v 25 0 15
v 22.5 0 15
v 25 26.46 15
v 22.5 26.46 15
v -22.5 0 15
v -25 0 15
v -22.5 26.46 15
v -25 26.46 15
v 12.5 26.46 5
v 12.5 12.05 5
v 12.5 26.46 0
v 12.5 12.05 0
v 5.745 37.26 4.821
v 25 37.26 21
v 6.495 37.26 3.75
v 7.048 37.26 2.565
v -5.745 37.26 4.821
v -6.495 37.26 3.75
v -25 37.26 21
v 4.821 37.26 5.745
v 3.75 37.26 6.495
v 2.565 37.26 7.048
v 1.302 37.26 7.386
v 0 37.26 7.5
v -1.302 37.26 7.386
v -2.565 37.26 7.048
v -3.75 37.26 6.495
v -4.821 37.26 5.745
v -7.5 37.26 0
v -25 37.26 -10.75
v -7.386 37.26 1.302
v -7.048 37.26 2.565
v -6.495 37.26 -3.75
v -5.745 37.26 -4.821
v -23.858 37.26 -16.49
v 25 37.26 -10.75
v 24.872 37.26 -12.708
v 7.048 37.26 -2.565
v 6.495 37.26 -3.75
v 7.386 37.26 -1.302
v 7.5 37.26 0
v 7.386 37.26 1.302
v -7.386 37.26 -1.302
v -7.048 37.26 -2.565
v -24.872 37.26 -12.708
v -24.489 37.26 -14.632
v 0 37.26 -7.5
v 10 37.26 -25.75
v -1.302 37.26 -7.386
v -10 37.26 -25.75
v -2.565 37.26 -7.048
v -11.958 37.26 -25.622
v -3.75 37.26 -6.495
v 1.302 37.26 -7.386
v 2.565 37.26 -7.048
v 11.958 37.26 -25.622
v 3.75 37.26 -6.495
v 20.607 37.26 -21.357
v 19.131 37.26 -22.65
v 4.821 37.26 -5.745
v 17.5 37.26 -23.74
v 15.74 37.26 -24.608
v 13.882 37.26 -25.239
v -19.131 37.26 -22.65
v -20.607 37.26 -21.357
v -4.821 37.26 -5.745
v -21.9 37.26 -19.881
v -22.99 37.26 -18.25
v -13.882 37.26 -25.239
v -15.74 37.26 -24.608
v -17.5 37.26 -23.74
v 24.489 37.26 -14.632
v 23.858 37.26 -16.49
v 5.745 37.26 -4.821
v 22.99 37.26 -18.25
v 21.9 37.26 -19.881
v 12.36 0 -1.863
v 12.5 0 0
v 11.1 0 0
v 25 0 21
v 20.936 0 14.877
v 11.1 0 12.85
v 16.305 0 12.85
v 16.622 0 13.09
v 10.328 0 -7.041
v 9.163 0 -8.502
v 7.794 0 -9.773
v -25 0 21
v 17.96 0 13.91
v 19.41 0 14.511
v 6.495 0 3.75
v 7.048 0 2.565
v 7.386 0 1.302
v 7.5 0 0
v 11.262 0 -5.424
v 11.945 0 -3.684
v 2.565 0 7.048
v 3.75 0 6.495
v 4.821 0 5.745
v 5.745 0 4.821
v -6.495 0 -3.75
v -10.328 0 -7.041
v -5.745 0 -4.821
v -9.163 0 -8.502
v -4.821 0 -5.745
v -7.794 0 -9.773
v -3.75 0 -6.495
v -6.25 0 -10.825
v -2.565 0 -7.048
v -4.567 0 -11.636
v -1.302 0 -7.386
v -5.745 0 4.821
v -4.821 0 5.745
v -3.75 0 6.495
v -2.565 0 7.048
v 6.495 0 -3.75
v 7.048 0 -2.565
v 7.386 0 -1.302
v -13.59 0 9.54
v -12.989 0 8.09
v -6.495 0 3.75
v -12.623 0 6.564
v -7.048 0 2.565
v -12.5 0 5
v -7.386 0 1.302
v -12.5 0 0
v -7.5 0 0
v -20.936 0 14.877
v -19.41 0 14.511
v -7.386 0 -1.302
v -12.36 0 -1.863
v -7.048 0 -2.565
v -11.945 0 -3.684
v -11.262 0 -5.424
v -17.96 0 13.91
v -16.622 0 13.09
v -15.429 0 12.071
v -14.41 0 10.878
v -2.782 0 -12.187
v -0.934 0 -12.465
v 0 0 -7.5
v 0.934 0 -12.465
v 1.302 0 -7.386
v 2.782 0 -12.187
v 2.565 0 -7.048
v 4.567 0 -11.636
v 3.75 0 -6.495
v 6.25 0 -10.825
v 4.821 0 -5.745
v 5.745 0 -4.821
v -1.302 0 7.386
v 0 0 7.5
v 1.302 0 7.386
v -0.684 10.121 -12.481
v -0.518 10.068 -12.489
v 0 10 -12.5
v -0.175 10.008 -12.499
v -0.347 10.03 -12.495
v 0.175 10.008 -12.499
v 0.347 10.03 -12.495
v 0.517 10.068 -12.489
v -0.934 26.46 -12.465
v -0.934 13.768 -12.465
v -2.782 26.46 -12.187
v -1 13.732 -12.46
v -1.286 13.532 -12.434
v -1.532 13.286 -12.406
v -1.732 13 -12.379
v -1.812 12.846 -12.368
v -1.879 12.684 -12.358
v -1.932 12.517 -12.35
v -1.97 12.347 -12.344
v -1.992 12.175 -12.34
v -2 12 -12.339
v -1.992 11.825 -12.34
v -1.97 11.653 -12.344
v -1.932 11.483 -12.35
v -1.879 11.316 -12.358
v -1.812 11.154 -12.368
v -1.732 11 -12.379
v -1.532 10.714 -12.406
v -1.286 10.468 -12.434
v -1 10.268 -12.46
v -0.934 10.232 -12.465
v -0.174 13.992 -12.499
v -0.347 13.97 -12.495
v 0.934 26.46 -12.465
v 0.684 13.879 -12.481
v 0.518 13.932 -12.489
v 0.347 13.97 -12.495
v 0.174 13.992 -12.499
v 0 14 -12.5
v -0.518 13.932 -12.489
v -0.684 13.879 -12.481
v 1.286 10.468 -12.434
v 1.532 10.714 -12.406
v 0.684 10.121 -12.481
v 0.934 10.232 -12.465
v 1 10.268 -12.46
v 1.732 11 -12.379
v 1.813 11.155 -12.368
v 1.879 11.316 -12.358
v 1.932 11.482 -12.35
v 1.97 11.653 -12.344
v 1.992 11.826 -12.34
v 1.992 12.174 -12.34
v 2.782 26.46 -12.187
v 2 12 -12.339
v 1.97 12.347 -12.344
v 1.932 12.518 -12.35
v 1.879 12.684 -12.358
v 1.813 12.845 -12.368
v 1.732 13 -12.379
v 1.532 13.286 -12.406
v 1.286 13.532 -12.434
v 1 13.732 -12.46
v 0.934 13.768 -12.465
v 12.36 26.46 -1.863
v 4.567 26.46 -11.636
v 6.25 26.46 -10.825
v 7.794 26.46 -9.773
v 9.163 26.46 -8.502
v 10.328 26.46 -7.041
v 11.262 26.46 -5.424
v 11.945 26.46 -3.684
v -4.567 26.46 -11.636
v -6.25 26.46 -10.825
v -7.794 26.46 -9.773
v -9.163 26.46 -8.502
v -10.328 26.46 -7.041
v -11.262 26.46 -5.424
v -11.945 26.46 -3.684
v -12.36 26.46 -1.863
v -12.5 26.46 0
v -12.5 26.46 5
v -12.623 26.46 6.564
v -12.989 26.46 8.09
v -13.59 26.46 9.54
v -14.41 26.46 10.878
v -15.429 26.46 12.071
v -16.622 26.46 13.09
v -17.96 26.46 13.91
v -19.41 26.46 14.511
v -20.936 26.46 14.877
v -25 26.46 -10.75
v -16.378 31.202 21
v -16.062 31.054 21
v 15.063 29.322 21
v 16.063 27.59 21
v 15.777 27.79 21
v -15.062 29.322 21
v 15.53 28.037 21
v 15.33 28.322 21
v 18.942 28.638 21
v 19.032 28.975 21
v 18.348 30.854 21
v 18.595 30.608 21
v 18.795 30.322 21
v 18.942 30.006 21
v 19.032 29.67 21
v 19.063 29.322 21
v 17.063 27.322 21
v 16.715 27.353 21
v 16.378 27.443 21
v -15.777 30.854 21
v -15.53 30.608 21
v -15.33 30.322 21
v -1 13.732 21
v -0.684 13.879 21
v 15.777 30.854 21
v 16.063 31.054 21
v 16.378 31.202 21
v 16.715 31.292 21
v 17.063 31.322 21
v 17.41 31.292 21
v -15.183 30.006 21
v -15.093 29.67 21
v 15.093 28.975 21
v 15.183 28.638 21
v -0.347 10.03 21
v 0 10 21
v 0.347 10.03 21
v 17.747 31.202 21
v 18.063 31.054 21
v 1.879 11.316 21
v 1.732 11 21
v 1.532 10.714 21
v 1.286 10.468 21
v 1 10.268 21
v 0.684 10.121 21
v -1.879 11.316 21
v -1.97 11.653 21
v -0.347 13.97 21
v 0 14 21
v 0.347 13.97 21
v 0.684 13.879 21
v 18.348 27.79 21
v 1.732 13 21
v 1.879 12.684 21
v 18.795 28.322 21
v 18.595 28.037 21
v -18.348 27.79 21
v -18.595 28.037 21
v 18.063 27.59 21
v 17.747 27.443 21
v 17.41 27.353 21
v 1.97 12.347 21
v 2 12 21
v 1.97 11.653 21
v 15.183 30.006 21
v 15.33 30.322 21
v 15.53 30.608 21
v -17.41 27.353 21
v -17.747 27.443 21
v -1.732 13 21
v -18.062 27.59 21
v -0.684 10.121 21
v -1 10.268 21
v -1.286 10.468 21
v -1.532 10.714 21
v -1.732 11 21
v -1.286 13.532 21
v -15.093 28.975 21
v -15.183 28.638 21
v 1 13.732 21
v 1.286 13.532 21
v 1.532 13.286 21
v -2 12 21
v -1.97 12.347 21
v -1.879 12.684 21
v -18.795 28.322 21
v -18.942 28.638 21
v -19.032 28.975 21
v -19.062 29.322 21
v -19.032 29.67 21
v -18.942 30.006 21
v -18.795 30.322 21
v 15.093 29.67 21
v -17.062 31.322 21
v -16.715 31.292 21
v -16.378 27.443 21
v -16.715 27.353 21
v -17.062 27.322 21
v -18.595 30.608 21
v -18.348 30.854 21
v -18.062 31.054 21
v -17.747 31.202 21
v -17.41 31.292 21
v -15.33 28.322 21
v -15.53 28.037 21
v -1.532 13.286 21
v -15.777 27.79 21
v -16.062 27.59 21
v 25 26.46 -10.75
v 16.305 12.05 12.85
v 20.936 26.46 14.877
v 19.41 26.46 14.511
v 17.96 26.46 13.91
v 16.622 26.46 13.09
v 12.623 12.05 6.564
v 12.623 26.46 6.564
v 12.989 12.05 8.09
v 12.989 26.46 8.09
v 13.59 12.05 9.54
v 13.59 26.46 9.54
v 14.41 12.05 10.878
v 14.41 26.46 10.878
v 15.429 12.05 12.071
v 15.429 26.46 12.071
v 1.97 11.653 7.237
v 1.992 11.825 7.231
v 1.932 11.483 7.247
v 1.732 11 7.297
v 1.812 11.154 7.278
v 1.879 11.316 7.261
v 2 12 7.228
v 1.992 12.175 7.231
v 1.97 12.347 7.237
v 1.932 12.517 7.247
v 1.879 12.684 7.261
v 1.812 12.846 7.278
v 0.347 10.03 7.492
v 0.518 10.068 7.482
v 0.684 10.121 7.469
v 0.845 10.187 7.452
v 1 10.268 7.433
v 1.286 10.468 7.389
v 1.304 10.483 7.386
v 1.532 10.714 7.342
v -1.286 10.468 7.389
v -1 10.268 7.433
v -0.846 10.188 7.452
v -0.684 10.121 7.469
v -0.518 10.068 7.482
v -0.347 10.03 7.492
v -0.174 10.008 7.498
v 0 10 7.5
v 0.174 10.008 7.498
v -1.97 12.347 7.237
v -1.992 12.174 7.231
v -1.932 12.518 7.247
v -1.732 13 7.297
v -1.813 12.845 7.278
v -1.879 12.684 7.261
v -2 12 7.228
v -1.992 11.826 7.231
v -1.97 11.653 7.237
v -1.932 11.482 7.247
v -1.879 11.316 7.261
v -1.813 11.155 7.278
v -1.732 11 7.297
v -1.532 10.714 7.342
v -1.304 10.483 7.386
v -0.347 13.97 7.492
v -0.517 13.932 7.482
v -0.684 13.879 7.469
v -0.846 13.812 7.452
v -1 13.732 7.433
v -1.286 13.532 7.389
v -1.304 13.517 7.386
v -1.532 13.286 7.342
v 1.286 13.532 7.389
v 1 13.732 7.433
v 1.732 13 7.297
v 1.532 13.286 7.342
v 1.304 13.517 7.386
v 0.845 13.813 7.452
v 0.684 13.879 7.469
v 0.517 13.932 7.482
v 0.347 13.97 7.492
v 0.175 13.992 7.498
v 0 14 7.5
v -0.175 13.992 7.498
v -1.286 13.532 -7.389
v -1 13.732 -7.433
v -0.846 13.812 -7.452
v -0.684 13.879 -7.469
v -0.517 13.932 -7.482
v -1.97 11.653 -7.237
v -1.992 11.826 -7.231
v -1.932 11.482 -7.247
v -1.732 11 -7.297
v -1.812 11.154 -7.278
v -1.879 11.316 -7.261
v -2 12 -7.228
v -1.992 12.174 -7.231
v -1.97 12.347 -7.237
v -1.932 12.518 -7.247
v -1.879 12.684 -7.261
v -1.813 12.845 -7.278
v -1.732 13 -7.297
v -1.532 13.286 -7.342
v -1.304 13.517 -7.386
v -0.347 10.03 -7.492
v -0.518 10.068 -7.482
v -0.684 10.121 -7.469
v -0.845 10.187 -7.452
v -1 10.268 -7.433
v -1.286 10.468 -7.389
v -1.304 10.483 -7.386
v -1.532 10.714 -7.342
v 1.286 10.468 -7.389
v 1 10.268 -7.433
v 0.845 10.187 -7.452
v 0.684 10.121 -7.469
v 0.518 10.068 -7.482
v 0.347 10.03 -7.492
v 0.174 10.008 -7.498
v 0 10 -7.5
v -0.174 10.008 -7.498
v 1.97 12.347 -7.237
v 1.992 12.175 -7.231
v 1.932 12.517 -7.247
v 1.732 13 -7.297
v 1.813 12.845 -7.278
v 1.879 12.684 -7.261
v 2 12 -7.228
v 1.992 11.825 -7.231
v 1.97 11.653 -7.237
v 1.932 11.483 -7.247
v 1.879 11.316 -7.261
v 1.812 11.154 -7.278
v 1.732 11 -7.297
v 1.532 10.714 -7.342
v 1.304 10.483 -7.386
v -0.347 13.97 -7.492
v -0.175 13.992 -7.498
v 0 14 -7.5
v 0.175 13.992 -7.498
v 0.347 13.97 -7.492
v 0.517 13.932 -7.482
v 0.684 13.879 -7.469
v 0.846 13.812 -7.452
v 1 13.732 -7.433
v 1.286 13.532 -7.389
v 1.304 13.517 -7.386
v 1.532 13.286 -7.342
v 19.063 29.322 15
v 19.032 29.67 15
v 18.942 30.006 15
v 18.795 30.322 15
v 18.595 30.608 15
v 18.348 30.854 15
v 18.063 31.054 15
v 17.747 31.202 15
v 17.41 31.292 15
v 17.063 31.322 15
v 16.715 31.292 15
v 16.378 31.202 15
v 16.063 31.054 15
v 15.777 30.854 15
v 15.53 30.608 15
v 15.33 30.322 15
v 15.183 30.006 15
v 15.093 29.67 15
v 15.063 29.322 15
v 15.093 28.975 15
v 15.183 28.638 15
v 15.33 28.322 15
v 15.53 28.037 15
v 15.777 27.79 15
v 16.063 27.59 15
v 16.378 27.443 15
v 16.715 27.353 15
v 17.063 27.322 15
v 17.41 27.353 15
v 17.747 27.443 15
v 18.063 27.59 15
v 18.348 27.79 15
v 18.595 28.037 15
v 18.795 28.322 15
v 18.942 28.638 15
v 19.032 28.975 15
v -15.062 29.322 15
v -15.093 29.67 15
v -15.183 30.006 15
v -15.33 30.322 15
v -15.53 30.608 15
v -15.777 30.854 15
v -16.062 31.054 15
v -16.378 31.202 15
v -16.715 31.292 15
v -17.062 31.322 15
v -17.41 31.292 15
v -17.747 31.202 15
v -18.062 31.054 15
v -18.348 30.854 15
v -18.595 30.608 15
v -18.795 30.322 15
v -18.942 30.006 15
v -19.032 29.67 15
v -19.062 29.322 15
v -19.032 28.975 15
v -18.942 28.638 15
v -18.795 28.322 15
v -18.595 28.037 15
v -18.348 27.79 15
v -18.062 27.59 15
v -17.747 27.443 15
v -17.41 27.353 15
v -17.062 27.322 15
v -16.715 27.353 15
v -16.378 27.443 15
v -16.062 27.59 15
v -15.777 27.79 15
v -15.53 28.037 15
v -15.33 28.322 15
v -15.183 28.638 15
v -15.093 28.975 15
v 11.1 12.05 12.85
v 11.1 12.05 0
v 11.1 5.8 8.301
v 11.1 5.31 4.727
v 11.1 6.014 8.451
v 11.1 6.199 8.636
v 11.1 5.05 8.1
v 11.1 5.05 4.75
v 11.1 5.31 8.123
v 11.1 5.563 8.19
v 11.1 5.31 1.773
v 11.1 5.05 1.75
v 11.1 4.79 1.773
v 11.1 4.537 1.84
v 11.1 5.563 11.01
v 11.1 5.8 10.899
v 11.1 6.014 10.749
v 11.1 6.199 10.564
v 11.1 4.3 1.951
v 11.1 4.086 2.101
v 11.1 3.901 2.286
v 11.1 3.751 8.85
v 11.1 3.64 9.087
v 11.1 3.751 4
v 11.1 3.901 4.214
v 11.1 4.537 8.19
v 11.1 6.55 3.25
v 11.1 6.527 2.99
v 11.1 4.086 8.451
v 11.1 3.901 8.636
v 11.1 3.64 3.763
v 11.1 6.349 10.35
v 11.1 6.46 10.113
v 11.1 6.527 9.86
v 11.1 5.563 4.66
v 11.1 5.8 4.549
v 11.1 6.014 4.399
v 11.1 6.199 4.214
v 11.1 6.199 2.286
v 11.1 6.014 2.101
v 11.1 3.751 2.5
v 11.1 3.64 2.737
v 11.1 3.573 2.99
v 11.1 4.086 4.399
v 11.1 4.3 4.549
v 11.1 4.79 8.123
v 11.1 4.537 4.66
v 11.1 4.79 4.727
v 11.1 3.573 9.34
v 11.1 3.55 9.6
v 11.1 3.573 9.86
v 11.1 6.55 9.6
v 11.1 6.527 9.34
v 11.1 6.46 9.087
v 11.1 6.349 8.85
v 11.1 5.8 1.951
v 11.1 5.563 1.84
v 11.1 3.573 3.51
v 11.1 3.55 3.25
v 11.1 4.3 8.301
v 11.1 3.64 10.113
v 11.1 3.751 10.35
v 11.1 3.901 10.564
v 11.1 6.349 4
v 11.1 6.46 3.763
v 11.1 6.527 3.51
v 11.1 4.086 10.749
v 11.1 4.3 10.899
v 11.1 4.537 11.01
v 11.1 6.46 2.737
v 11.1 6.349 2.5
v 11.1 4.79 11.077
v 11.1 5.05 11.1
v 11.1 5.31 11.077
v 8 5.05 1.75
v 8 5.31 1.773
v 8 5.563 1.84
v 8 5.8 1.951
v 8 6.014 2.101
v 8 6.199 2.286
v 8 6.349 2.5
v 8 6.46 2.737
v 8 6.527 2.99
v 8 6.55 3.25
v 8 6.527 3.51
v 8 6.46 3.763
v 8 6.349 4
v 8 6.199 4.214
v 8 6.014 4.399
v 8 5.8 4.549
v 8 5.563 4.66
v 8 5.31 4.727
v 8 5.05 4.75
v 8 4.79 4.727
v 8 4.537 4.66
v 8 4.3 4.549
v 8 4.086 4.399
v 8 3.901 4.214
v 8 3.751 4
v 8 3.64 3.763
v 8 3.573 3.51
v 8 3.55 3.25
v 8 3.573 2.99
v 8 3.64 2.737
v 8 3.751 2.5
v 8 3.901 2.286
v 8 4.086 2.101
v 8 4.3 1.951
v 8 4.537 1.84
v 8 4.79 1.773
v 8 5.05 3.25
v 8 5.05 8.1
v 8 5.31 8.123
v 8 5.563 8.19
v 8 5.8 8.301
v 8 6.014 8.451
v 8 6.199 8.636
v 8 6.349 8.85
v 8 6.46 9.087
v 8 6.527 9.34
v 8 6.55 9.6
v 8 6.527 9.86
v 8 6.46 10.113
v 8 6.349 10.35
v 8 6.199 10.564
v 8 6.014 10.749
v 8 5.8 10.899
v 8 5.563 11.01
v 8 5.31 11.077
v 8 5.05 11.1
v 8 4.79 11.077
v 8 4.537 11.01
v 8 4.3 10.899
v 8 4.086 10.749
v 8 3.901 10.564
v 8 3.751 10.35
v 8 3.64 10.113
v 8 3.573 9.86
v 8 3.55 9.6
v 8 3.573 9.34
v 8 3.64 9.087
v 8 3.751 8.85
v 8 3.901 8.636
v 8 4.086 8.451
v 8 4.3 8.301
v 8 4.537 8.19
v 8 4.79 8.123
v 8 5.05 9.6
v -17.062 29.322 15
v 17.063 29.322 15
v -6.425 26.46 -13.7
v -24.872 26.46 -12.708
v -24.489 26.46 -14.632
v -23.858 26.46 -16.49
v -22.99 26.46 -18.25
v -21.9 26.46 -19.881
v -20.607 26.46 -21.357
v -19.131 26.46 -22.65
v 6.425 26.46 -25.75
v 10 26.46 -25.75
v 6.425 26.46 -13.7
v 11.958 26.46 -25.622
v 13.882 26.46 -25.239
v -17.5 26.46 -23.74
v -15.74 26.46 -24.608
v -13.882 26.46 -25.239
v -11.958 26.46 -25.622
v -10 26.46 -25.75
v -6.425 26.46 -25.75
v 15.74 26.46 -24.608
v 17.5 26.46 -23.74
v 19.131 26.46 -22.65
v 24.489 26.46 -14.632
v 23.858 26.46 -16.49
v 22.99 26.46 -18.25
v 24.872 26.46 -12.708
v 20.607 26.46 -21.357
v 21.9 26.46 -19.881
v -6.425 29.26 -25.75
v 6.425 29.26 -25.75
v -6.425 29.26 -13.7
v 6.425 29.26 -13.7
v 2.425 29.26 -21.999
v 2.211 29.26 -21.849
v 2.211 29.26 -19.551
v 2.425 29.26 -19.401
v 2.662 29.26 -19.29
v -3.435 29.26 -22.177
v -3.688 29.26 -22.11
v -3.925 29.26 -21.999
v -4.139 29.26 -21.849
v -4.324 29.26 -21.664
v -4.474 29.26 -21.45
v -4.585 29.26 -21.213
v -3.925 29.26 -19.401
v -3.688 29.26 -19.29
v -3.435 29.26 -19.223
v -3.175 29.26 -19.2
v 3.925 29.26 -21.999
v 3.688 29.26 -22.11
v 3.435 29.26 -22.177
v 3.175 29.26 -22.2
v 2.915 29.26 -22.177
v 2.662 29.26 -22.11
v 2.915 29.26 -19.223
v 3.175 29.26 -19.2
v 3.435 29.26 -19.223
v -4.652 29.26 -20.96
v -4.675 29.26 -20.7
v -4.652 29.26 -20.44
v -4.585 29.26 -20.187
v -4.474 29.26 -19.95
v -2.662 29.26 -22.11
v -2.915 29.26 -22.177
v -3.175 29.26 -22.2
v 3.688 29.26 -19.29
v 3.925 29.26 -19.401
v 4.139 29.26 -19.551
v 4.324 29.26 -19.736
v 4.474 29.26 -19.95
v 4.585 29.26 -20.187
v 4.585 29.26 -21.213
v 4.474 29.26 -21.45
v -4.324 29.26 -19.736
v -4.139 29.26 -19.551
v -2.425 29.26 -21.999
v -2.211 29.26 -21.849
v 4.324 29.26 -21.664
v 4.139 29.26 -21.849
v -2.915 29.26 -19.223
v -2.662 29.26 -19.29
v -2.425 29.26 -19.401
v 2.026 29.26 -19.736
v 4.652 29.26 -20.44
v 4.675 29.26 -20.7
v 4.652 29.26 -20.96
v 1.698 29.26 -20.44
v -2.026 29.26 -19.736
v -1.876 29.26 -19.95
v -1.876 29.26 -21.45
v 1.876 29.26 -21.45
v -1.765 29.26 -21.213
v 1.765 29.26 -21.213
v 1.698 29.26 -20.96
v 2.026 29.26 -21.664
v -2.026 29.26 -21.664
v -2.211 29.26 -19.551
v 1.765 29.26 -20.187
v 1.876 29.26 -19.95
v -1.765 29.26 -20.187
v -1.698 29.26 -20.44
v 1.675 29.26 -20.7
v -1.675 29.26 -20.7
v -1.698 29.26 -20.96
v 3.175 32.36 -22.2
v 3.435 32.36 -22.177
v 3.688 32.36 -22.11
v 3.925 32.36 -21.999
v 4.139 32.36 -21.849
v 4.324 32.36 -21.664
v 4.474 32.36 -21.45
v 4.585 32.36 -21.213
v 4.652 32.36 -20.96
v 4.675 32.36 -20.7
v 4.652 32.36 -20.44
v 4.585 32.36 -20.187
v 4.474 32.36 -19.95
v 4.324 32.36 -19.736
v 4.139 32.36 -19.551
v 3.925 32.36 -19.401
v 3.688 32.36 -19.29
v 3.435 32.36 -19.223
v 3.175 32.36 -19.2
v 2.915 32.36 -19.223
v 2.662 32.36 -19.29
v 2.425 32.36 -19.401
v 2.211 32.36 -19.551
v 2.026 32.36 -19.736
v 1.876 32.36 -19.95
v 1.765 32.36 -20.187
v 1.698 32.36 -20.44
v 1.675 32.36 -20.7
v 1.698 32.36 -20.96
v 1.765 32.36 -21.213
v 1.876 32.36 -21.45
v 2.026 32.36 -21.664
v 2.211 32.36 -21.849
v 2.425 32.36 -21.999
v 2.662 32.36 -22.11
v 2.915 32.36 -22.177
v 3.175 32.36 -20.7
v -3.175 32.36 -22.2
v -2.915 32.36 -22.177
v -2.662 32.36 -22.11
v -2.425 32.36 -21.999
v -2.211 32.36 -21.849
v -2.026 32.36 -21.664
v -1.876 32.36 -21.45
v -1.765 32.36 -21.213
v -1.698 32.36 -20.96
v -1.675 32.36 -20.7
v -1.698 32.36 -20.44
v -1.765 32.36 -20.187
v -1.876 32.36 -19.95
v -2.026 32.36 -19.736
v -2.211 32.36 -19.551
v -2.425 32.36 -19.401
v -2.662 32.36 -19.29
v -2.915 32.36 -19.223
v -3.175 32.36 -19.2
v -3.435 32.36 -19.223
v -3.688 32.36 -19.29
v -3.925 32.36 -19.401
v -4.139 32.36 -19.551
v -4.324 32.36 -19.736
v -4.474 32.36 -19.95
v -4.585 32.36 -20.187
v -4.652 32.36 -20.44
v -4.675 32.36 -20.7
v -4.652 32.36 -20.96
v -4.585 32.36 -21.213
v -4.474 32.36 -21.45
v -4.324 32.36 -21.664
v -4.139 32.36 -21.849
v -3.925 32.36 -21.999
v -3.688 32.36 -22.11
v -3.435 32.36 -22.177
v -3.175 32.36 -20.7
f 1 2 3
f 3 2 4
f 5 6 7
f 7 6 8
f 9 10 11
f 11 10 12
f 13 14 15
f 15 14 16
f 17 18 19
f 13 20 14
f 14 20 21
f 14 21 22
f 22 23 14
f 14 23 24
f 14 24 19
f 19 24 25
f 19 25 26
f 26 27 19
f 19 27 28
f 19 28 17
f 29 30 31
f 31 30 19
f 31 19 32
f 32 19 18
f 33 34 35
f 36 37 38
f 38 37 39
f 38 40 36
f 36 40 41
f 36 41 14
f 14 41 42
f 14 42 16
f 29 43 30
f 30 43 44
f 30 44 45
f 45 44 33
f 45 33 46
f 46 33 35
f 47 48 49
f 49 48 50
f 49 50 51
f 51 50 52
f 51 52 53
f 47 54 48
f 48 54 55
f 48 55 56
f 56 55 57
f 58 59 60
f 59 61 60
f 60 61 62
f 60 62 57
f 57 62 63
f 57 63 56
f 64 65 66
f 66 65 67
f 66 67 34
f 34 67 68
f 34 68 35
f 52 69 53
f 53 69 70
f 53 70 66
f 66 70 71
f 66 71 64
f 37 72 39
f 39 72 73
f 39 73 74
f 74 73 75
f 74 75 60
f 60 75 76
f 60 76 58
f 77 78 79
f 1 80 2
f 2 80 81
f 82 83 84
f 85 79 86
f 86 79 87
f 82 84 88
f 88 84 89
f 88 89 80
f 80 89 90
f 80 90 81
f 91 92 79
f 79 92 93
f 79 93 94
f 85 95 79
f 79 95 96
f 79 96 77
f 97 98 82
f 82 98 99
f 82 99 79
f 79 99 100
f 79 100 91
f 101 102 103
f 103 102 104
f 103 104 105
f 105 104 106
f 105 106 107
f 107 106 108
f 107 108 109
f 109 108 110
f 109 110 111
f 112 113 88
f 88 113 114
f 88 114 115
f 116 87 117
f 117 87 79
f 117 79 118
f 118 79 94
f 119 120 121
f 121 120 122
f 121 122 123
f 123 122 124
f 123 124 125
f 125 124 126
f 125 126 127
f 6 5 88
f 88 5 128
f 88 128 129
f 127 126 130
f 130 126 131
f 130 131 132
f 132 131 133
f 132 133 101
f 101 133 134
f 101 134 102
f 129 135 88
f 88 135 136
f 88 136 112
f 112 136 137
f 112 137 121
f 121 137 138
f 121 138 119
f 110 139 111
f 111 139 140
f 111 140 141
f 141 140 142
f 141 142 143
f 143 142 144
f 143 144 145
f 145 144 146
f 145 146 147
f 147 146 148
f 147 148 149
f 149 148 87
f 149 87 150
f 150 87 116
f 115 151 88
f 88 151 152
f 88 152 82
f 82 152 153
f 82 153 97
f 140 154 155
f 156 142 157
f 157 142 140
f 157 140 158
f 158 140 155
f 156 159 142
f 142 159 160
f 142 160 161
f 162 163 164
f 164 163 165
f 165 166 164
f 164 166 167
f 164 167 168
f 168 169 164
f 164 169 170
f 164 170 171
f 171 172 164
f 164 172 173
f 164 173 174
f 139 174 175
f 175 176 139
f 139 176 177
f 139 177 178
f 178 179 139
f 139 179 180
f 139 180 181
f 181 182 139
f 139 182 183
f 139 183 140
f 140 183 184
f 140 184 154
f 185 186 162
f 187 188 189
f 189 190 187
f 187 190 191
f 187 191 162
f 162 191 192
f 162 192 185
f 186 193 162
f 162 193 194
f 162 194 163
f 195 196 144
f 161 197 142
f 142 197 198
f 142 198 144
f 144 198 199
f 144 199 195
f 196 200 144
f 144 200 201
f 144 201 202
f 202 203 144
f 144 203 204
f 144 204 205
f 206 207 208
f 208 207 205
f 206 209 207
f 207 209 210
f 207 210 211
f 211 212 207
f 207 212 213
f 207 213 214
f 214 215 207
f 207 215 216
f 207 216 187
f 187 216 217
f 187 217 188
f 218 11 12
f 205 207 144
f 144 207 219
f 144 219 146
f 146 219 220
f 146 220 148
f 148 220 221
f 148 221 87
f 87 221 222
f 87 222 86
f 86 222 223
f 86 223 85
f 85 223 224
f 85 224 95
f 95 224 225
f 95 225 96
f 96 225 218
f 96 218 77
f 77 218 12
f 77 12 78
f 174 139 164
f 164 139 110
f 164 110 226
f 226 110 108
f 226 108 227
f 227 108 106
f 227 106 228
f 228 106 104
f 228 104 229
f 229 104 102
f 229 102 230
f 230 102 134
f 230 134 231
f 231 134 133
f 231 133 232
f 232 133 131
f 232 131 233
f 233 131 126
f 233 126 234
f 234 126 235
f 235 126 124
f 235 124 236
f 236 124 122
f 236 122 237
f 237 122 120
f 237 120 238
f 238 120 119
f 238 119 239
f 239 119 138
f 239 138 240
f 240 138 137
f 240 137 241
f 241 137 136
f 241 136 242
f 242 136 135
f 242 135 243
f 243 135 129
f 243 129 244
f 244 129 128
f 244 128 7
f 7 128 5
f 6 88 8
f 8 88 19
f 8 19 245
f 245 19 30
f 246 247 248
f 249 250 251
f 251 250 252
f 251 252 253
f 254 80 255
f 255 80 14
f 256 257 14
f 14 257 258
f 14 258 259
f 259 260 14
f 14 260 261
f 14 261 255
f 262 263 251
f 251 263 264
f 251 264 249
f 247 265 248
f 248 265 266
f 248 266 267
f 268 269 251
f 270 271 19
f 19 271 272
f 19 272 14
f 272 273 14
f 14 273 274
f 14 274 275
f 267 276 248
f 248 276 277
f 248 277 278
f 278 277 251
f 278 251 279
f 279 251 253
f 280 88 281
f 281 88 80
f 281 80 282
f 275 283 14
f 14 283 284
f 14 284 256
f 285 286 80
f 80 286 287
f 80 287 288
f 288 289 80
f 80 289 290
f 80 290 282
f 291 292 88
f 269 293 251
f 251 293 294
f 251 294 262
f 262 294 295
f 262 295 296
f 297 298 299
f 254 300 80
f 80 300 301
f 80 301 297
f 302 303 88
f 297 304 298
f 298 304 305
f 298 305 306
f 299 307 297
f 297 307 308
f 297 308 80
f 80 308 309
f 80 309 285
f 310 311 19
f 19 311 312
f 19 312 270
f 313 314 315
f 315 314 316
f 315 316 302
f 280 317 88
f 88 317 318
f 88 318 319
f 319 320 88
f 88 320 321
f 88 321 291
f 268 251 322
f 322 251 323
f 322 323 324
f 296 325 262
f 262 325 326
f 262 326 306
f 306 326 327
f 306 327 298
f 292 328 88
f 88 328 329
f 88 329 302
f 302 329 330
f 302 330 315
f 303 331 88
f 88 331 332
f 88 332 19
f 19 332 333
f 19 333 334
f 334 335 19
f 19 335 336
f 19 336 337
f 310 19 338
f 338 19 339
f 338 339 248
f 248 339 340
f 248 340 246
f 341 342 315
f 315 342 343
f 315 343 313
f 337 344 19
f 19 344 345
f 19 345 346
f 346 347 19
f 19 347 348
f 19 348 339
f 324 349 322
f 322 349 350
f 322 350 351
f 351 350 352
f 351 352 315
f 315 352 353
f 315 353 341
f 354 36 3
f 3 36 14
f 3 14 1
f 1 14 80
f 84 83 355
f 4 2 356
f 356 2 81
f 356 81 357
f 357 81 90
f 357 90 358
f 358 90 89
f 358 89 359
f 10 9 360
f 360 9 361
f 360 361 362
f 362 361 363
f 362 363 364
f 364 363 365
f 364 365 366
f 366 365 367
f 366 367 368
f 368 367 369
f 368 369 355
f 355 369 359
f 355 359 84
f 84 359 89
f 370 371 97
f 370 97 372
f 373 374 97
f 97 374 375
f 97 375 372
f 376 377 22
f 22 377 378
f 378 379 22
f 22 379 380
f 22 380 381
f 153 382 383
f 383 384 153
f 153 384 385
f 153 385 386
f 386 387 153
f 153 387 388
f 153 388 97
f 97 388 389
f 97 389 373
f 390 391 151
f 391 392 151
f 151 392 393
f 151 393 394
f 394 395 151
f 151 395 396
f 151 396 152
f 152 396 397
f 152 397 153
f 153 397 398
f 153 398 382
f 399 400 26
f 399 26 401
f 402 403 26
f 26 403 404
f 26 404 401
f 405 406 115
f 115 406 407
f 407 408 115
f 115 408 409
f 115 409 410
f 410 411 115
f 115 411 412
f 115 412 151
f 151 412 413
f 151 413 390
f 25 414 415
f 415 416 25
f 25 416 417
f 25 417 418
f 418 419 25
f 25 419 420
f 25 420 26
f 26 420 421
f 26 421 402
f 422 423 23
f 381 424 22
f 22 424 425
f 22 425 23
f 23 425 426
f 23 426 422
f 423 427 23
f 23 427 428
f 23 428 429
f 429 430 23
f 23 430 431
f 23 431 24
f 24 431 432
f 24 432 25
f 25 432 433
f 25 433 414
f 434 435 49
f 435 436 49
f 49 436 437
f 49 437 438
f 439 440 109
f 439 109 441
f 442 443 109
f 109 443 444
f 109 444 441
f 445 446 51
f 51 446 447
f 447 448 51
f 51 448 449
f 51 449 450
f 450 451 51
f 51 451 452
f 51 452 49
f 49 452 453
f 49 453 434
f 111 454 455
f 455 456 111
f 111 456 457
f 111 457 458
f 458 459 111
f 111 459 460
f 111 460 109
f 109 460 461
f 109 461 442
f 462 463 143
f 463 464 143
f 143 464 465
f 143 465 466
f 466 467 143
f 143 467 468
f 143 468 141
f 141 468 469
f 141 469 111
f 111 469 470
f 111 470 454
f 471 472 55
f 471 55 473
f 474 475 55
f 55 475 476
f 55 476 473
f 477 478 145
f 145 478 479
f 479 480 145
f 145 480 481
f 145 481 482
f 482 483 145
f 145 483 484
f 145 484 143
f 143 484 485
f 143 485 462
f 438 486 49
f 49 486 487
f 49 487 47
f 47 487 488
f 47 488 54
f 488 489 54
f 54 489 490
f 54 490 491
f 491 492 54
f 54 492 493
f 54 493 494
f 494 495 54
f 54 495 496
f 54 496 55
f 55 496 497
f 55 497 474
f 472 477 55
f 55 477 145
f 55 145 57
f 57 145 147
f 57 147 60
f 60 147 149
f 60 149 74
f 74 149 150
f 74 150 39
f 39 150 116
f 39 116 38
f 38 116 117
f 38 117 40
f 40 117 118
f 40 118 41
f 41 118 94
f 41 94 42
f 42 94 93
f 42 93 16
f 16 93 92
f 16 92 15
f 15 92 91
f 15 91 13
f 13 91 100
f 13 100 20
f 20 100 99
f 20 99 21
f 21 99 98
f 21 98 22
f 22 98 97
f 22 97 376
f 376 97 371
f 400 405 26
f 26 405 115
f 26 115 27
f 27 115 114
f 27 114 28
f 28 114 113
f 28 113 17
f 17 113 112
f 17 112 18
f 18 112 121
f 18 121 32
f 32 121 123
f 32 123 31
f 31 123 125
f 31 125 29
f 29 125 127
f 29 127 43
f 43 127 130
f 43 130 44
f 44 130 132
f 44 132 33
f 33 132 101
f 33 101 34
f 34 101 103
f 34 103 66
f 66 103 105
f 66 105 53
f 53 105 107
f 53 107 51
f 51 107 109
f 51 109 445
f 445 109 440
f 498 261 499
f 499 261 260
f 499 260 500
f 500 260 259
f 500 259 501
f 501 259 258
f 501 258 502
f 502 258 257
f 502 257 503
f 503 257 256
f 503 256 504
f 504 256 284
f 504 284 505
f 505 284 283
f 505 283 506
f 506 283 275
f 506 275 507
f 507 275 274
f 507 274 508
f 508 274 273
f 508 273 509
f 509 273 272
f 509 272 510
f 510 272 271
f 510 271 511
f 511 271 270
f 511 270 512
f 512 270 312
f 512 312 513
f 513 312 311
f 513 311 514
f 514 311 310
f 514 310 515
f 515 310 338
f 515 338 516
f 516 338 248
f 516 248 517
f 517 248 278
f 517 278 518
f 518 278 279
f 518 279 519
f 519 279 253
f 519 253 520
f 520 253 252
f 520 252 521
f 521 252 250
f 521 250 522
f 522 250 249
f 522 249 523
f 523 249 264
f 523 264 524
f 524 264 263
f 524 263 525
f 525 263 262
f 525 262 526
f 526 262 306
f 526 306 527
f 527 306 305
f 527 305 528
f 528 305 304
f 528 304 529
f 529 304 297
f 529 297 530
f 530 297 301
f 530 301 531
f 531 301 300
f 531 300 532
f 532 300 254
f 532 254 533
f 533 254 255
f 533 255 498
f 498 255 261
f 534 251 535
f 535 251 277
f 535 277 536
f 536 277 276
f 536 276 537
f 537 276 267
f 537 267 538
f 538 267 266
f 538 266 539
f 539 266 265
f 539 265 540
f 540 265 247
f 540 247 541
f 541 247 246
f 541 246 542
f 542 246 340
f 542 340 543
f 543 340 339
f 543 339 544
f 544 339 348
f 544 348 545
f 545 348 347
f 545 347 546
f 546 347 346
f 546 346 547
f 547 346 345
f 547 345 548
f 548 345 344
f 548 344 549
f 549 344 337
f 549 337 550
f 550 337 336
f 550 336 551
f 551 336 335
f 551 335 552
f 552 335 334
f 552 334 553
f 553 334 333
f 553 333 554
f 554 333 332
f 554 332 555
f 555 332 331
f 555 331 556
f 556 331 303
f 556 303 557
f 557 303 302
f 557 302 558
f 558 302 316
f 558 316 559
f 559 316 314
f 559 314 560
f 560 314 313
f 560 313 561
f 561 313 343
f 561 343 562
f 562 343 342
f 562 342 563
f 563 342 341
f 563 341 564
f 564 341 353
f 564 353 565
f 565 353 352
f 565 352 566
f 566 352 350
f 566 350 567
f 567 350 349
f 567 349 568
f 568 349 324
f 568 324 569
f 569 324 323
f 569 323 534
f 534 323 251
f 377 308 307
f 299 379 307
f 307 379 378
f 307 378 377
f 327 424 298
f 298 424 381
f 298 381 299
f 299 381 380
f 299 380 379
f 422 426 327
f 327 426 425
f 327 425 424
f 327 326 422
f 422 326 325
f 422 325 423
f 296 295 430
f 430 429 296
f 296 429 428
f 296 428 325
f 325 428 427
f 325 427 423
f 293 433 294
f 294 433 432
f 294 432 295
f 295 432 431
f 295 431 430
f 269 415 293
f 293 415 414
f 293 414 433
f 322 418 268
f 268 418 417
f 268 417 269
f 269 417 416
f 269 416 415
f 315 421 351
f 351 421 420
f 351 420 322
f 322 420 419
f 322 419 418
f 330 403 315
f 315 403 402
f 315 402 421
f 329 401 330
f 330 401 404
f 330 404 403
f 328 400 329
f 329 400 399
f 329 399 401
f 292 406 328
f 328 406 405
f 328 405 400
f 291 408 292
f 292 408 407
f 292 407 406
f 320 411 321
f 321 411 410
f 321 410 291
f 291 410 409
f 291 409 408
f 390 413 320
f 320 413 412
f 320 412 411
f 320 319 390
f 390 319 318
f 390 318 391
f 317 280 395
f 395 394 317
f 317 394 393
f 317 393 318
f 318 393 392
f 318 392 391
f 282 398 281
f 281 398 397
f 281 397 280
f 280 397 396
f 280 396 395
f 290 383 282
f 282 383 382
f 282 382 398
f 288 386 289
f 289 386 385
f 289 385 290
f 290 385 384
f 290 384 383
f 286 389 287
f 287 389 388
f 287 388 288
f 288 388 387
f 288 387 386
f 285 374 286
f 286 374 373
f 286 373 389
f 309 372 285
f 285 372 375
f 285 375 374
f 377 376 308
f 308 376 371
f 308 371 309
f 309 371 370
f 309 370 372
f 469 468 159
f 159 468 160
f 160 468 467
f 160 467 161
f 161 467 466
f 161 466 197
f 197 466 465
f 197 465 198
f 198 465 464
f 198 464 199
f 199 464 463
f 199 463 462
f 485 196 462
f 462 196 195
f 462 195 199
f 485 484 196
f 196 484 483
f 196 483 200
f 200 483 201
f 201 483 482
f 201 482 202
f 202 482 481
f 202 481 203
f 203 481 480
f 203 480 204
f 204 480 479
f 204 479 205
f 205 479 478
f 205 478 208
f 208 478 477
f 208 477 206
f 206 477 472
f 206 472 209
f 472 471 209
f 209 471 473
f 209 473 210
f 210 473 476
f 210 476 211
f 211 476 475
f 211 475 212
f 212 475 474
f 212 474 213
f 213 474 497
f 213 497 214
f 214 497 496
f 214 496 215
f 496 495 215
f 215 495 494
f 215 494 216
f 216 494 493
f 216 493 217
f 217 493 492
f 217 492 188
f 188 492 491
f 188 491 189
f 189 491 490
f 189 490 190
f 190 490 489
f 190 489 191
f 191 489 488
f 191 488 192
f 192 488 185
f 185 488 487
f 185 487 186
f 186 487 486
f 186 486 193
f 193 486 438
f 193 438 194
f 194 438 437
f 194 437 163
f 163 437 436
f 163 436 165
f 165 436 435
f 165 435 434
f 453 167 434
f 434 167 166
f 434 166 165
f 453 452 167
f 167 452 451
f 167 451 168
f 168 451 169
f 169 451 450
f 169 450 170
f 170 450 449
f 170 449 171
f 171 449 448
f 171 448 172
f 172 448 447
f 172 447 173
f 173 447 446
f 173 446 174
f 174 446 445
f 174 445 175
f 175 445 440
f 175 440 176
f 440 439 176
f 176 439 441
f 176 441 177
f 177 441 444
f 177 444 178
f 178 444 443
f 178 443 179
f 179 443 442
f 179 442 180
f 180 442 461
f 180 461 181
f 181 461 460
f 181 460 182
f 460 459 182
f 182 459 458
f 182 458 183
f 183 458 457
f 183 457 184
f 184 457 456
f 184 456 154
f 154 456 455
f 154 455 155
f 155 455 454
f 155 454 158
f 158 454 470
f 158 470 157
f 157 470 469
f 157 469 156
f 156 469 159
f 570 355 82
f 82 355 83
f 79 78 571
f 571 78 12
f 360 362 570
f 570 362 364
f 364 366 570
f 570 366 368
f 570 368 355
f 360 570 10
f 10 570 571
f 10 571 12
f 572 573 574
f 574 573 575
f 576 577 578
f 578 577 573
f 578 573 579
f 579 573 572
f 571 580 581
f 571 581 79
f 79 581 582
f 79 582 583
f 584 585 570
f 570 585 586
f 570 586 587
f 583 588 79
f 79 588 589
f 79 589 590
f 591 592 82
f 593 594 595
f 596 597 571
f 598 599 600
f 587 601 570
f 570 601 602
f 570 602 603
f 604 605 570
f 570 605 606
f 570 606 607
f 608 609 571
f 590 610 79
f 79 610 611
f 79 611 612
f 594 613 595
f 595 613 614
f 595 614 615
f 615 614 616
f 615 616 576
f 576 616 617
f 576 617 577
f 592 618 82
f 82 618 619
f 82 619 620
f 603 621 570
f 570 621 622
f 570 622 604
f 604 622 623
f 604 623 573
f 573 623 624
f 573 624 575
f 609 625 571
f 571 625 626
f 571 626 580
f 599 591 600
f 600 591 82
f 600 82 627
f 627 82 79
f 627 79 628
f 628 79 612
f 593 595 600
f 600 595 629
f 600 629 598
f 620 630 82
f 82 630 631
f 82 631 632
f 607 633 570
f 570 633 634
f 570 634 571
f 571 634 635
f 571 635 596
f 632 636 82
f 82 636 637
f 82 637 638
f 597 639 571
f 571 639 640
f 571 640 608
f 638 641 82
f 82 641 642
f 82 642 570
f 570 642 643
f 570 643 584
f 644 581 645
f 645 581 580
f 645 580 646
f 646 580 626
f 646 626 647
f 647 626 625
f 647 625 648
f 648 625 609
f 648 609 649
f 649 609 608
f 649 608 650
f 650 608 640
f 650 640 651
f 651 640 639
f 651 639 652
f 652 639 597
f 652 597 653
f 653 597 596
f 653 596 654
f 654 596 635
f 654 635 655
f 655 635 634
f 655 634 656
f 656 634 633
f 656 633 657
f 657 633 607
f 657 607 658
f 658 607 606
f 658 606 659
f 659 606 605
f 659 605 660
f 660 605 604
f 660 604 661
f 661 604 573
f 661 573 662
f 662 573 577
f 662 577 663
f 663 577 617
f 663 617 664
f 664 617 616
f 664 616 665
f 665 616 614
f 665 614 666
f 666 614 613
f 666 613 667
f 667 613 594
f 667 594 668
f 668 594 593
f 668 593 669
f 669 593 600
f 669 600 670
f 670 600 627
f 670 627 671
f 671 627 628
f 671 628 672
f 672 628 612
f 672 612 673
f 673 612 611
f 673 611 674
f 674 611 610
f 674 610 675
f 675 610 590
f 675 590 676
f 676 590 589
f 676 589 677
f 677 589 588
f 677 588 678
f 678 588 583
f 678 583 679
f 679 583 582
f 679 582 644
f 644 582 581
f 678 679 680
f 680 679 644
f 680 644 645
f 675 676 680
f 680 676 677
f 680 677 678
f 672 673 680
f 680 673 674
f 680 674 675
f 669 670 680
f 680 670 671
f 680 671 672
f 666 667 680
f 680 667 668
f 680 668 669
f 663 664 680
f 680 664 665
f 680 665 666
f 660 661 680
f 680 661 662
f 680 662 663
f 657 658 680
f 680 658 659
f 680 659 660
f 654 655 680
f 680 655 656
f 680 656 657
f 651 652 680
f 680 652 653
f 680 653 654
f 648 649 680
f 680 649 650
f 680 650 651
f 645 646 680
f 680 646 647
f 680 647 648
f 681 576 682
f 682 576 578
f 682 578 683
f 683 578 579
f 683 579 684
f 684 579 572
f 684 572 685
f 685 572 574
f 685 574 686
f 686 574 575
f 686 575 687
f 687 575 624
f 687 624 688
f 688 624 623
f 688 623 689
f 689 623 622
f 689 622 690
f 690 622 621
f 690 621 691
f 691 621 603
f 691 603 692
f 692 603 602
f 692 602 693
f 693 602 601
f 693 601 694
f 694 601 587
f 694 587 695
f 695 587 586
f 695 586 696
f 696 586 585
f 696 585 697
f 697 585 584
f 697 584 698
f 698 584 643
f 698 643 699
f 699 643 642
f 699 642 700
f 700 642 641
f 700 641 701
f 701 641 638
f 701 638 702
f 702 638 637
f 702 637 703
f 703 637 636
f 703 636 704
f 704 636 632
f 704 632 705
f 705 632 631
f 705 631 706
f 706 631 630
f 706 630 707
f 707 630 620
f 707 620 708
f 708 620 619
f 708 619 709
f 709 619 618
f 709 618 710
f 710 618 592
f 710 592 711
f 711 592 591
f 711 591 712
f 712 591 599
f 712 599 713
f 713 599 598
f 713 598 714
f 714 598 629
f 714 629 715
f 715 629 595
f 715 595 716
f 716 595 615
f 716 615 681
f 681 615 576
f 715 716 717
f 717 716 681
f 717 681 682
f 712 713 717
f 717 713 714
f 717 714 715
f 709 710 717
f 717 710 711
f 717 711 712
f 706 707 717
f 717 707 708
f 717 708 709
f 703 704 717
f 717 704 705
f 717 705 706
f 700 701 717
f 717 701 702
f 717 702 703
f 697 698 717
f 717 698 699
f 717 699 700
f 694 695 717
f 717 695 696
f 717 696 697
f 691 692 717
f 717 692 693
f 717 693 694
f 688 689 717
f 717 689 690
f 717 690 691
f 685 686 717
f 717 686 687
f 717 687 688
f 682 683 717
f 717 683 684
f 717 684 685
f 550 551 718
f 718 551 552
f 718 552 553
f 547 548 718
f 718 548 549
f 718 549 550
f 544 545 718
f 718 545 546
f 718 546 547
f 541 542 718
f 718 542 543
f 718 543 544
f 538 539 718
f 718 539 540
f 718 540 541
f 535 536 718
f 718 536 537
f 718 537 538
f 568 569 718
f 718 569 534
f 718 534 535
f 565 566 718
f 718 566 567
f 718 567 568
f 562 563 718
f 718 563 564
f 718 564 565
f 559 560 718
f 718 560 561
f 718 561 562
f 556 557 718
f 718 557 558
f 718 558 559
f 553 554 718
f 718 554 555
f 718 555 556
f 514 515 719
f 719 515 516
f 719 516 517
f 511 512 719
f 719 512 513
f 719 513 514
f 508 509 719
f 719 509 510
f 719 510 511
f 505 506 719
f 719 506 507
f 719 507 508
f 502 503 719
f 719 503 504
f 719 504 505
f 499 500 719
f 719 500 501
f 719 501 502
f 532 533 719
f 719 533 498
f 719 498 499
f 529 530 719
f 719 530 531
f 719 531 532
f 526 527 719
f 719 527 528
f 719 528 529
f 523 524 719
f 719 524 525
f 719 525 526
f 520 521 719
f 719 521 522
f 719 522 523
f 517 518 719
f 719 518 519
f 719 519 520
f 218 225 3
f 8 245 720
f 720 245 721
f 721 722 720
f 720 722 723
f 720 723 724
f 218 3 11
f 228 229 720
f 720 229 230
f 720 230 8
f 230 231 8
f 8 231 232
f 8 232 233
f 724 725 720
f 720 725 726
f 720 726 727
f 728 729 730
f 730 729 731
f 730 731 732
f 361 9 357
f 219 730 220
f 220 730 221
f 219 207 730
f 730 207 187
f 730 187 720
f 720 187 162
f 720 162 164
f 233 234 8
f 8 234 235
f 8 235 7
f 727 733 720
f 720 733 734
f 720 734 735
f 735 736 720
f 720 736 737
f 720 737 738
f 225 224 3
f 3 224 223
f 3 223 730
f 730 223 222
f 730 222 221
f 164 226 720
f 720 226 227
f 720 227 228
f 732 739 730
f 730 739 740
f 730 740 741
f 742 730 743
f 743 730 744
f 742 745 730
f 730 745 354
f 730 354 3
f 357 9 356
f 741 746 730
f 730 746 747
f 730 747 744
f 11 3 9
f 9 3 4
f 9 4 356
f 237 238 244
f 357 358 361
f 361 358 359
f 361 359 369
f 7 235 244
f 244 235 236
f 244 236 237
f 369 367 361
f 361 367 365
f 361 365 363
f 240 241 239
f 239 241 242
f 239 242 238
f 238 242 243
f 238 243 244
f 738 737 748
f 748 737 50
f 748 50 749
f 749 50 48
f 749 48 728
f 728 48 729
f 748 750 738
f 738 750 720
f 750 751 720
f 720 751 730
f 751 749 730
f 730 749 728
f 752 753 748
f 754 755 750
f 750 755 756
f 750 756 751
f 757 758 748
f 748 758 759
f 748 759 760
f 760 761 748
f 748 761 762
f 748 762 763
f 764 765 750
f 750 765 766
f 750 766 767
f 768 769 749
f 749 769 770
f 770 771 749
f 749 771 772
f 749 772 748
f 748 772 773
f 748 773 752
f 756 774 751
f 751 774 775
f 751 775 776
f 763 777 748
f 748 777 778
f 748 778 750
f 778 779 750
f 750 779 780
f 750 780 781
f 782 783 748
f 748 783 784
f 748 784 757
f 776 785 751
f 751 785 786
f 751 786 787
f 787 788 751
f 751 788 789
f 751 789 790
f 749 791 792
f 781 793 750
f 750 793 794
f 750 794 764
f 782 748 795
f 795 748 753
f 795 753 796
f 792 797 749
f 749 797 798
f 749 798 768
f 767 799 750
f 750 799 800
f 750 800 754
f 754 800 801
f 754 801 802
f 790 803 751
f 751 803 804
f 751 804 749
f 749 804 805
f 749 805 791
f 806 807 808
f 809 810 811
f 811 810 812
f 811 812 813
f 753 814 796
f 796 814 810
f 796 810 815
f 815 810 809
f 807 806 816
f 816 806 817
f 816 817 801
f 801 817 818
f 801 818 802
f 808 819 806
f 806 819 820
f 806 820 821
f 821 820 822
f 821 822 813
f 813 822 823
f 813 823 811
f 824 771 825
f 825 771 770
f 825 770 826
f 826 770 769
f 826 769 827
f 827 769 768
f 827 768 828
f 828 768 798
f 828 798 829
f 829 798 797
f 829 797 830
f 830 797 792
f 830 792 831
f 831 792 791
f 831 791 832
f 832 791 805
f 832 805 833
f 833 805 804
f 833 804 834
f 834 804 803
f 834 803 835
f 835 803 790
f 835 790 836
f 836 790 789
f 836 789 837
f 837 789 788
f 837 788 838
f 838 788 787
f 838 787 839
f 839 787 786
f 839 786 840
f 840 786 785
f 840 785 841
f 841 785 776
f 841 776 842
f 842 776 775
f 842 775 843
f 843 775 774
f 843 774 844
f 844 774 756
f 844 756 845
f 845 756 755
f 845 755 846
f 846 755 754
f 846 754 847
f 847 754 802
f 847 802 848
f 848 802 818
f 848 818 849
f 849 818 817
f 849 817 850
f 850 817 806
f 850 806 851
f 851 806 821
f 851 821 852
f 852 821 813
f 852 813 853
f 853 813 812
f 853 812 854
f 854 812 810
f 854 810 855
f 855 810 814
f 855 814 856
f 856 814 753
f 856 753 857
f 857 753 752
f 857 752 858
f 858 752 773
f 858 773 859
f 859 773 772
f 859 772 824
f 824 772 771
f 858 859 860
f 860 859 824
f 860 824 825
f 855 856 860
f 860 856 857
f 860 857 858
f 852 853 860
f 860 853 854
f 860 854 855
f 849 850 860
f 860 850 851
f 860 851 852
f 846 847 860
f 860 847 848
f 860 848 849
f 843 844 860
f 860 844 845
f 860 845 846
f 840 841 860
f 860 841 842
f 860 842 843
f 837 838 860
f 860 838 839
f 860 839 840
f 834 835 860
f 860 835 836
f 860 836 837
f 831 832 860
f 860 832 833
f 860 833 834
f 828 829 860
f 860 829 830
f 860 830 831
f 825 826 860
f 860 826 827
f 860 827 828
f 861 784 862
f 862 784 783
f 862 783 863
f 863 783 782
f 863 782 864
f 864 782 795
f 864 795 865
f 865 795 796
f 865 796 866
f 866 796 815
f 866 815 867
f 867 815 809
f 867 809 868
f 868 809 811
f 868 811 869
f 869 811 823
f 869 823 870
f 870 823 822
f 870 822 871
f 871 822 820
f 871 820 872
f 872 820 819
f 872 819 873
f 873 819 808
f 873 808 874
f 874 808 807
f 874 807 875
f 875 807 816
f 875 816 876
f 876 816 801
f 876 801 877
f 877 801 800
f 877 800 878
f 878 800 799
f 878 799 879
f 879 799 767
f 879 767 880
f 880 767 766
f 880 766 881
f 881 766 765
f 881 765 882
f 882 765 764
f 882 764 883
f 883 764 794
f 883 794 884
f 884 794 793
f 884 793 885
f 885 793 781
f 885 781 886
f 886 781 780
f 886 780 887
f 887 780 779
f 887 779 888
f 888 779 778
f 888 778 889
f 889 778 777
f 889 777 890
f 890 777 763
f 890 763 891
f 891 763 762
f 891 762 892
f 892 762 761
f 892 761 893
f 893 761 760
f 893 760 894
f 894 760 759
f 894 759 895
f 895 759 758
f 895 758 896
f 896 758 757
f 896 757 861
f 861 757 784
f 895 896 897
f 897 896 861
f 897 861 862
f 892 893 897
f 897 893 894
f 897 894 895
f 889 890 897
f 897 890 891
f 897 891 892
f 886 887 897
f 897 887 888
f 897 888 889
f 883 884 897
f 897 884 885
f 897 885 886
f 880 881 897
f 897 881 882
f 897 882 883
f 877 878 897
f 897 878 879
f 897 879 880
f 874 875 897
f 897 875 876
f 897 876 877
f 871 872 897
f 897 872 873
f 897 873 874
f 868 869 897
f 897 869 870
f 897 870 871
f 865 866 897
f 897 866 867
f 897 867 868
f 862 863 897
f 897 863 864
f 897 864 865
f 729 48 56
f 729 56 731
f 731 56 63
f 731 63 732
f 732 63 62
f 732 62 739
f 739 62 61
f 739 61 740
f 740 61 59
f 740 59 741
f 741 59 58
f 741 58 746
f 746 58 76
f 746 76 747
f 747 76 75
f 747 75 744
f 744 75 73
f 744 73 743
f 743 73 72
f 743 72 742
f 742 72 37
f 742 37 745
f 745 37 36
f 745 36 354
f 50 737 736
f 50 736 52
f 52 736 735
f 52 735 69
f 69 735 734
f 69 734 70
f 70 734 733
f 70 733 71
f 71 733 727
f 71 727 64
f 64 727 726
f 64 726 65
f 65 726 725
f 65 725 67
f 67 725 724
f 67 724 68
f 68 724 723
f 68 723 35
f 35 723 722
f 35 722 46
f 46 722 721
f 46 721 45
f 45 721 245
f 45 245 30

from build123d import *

# Parameters (mm, degrees)
PROFILE_SKETCH1_R                              = 7.5
PROFILE_BOSS_EXTRUDE2_DEPTH                    = 37.25987
FASTENINGHOLESKETCH3_R                         = 2
FASTENINGHOLECUT_EXTRUDE8_DEPTH                = 56.995963358
LM8UUFASTENINGHOLESKETCH5_R                    = 2
LM8UUFASTENINGHOLECUT_EXTRUDE9_DEPTH           = 56.995963425
YAXISMICROSWITCHCUT_EXTRUDE1_DEPTH             = 12.05
MICROSWITCHMOUNTINGHOLESKETCH2_R               = 1.5
YAXISMICROSWITCHMOUNTINGHOLECUT_EXTRUDE2_DEPTH = 3.1
TOPKNOTCHSKETCH2_W                             = 50
TOPKNOTCHSKETCH2_H                             = 27.5
TOPKNOTCHCUT_EXTRUDE1_DEPTH                    = 10.8
TOPSHELFSKETCH3_W                              = 50
TOPSHELFSKETCH3_H                              = 10.8
TOPSHELFBOSS_EXTRUDE1_DEPTH                    = 40.75
TOPSHELFLM8UUHOLESKETCH_R                      = 7.5
TOPSHELFLM8UUCUT_EXTRUDE2_DEPTH                = 52.733552168
XAXISMICROSWITCHSKETCH7_W                      = 12.85
XAXISMICROSWITCHSKETCH7_H                      = 12.05
XAXISMICROSWITCHCUT_EXTRUDE5_DEPTH             = 2.8
XAXISMICROSWITCHMOUNTINGHOLESKETCH8_R          = 1.5
XAXISMICROSWITCHMOUNTINGHOLECUT_EXTRUDE6_DEPTH = 3.1
FILLET3_R                                      = 15
FILLET4_R                                      = 15


with BuildPart() as part:
    # Profile-Sketch1 → Profile-Boss-Extrude2 (new body)
    with BuildSketch(Plane(origin=(0, 0, 0), x_dir=(1, 0, 0), z_dir=(0, 1, 0))):
        with BuildLine():
            Line((-25, -21), (25, -21))
            Line((25, -21), (25, -15))
            Line((25, -15), (22.5, -15))
            ThreePointArc((22.5, -15), (15.428932188, -12.071067812), (12.5, -5))
            Line((12.5, -5), (12.5, 0))
            ThreePointArc((12.5, 0), (0, 12.5), (-12.5, 0))
            Line((-12.5, 0), (-12.5, -5))
            ThreePointArc((-12.5, -5), (-15.428932188, -12.071067812), (-22.5, -15))
            Line((-22.5, -15), (-25, -15))
            Line((-25, -15), (-25, -21))
        make_face()
        with Locations(Location((0, 0, 0), (0, 0, 270))):
            Circle(PROFILE_SKETCH1_R, mode=Mode.SUBTRACT)
    extrude(amount=PROFILE_BOSS_EXTRUDE2_DEPTH)

    # FasteningHoleSketch3 → FasteningHoleCut-Extrude8 (cut, through all)
    with BuildSketch(Plane.XY.offset(21)):
        with Locations((-17.0625, 29.32237)):
            Circle(FASTENINGHOLESKETCH3_R)
        with Locations((17.0625, 29.32237)):
            Circle(FASTENINGHOLESKETCH3_R)
    extrude(amount=-FASTENINGHOLECUT_EXTRUDE8_DEPTH, mode=Mode.SUBTRACT)

    # LM8UUFasteningHoleSketch5 → LM8UUFasteningHoleCut-Extrude9 (cut, through all)
    with BuildSketch(Plane.XY.offset(21)):
        with Locations((0, 12)):
            Circle(LM8UUFASTENINGHOLESKETCH5_R)
    extrude(amount=-LM8UUFASTENINGHOLECUT_EXTRUDE9_DEPTH, mode=Mode.SUBTRACT)

    # Sketch1 → YAxisMicroSwitchCut-Extrude1 (cut)
    with BuildSketch(Plane.XZ):
        Polygon((13.9, 12.85), (16.363847734, 12.85), (13.9, 10.102940329), (13.9, 0), (11.1, 0), (11.1, 12.85), align=None)
    extrude(amount=-YAXISMICROSWITCHCUT_EXTRUDE1_DEPTH, mode=Mode.SUBTRACT)

    # MicroSwitchMountingHoleSketch2 → YAxisMicroSwitchMountingHoleCut-Extrude2 (cut)
    with BuildSketch(Plane(origin=(11.1, 0, 0), x_dir=(0, 0, -1), z_dir=(1, 0, 0))):
        with Locations((-9.6, 5.05)):
            Circle(MICROSWITCHMOUNTINGHOLESKETCH2_R)
        with Locations((-3.25, 5.05)):
            Circle(MICROSWITCHMOUNTINGHOLESKETCH2_R)
    extrude(amount=-YAXISMICROSWITCHMOUNTINGHOLECUT_EXTRUDE2_DEPTH, mode=Mode.SUBTRACT)

    # TopKnotchSketch2 → TopKnotchCut-Extrude1 (cut)
    with BuildSketch(Plane(origin=(0, 37.25987, 0), x_dir=(1, 0, 0), z_dir=(0, 1, 0))):
        with Locations((0, -1.25)):
            Rectangle(TOPKNOTCHSKETCH2_W, TOPKNOTCHSKETCH2_H)
    extrude(amount=-TOPKNOTCHCUT_EXTRUDE1_DEPTH, mode=Mode.SUBTRACT)

    # TopShelfSketch3 → TopShelfBoss-Extrude1 (add)
    with BuildSketch(Plane(origin=(0, 0, 15), x_dir=(-1, 0, 0), z_dir=(0, 0, -1))):
        with Locations((0, 31.85987)):
            Rectangle(TOPSHELFSKETCH3_W, TOPSHELFSKETCH3_H)
    extrude(amount=TOPSHELFBOSS_EXTRUDE1_DEPTH)

    # TopShelfLM8UUHoleSketch → TopShelfLM8UUCut-Extrude2 (cut, through all)
    with BuildSketch(Plane(origin=(0, 37.25987, 0), x_dir=(1, 0, 0), z_dir=(0, 1, 0))):
        with Locations(Location((0, 0, 0), (0, 0, 270))):
            Circle(TOPSHELFLM8UUHOLESKETCH_R)
    extrude(amount=-TOPSHELFLM8UUCUT_EXTRUDE2_DEPTH, mode=Mode.SUBTRACT)

    # XAxisMicroSwitchSketch7 → XAxisMicroSwitchCut-Extrude5 (cut)
    with BuildSketch(Plane.XZ.offset(-26.45987)):
        with Locations((0, -19.725)):
            Rectangle(XAXISMICROSWITCHSKETCH7_W, XAXISMICROSWITCHSKETCH7_H)
    extrude(amount=-XAXISMICROSWITCHCUT_EXTRUDE5_DEPTH, mode=Mode.SUBTRACT)

    # XAxisMicroSwitchMountingHoleSketch8 → XAxisMicroSwitchMountingHoleCut-Extrude6 (cut)
    with BuildSketch(Plane.XZ.offset(-29.25987)):
        with Locations(Location((-3.175, -20.7, 0), (0, 0, 270))):
            Circle(XAXISMICROSWITCHMOUNTINGHOLESKETCH8_R)
        with Locations(Location((3.175, -20.7, 0), (0, 0, 270))):
            Circle(XAXISMICROSWITCHMOUNTINGHOLESKETCH8_R)
    extrude(amount=-XAXISMICROSWITCHMOUNTINGHOLECUT_EXTRUDE6_DEPTH, mode=Mode.SUBTRACT)

    # Fillet3
    fillet3_edges = [part.edges().sort_by_distance(p)[0] for p in [
        (25, 31.85987, -25.75),
    ]]
    fillet(fillet3_edges, radius=FILLET3_R)

    # Fillet4
    fillet4_edges = [part.edges().sort_by_distance(p)[0] for p in [
        (-25, 31.85987, -25.75),
    ]]
    fillet(fillet4_edges, radius=FILLET4_R)


solid = part.part
